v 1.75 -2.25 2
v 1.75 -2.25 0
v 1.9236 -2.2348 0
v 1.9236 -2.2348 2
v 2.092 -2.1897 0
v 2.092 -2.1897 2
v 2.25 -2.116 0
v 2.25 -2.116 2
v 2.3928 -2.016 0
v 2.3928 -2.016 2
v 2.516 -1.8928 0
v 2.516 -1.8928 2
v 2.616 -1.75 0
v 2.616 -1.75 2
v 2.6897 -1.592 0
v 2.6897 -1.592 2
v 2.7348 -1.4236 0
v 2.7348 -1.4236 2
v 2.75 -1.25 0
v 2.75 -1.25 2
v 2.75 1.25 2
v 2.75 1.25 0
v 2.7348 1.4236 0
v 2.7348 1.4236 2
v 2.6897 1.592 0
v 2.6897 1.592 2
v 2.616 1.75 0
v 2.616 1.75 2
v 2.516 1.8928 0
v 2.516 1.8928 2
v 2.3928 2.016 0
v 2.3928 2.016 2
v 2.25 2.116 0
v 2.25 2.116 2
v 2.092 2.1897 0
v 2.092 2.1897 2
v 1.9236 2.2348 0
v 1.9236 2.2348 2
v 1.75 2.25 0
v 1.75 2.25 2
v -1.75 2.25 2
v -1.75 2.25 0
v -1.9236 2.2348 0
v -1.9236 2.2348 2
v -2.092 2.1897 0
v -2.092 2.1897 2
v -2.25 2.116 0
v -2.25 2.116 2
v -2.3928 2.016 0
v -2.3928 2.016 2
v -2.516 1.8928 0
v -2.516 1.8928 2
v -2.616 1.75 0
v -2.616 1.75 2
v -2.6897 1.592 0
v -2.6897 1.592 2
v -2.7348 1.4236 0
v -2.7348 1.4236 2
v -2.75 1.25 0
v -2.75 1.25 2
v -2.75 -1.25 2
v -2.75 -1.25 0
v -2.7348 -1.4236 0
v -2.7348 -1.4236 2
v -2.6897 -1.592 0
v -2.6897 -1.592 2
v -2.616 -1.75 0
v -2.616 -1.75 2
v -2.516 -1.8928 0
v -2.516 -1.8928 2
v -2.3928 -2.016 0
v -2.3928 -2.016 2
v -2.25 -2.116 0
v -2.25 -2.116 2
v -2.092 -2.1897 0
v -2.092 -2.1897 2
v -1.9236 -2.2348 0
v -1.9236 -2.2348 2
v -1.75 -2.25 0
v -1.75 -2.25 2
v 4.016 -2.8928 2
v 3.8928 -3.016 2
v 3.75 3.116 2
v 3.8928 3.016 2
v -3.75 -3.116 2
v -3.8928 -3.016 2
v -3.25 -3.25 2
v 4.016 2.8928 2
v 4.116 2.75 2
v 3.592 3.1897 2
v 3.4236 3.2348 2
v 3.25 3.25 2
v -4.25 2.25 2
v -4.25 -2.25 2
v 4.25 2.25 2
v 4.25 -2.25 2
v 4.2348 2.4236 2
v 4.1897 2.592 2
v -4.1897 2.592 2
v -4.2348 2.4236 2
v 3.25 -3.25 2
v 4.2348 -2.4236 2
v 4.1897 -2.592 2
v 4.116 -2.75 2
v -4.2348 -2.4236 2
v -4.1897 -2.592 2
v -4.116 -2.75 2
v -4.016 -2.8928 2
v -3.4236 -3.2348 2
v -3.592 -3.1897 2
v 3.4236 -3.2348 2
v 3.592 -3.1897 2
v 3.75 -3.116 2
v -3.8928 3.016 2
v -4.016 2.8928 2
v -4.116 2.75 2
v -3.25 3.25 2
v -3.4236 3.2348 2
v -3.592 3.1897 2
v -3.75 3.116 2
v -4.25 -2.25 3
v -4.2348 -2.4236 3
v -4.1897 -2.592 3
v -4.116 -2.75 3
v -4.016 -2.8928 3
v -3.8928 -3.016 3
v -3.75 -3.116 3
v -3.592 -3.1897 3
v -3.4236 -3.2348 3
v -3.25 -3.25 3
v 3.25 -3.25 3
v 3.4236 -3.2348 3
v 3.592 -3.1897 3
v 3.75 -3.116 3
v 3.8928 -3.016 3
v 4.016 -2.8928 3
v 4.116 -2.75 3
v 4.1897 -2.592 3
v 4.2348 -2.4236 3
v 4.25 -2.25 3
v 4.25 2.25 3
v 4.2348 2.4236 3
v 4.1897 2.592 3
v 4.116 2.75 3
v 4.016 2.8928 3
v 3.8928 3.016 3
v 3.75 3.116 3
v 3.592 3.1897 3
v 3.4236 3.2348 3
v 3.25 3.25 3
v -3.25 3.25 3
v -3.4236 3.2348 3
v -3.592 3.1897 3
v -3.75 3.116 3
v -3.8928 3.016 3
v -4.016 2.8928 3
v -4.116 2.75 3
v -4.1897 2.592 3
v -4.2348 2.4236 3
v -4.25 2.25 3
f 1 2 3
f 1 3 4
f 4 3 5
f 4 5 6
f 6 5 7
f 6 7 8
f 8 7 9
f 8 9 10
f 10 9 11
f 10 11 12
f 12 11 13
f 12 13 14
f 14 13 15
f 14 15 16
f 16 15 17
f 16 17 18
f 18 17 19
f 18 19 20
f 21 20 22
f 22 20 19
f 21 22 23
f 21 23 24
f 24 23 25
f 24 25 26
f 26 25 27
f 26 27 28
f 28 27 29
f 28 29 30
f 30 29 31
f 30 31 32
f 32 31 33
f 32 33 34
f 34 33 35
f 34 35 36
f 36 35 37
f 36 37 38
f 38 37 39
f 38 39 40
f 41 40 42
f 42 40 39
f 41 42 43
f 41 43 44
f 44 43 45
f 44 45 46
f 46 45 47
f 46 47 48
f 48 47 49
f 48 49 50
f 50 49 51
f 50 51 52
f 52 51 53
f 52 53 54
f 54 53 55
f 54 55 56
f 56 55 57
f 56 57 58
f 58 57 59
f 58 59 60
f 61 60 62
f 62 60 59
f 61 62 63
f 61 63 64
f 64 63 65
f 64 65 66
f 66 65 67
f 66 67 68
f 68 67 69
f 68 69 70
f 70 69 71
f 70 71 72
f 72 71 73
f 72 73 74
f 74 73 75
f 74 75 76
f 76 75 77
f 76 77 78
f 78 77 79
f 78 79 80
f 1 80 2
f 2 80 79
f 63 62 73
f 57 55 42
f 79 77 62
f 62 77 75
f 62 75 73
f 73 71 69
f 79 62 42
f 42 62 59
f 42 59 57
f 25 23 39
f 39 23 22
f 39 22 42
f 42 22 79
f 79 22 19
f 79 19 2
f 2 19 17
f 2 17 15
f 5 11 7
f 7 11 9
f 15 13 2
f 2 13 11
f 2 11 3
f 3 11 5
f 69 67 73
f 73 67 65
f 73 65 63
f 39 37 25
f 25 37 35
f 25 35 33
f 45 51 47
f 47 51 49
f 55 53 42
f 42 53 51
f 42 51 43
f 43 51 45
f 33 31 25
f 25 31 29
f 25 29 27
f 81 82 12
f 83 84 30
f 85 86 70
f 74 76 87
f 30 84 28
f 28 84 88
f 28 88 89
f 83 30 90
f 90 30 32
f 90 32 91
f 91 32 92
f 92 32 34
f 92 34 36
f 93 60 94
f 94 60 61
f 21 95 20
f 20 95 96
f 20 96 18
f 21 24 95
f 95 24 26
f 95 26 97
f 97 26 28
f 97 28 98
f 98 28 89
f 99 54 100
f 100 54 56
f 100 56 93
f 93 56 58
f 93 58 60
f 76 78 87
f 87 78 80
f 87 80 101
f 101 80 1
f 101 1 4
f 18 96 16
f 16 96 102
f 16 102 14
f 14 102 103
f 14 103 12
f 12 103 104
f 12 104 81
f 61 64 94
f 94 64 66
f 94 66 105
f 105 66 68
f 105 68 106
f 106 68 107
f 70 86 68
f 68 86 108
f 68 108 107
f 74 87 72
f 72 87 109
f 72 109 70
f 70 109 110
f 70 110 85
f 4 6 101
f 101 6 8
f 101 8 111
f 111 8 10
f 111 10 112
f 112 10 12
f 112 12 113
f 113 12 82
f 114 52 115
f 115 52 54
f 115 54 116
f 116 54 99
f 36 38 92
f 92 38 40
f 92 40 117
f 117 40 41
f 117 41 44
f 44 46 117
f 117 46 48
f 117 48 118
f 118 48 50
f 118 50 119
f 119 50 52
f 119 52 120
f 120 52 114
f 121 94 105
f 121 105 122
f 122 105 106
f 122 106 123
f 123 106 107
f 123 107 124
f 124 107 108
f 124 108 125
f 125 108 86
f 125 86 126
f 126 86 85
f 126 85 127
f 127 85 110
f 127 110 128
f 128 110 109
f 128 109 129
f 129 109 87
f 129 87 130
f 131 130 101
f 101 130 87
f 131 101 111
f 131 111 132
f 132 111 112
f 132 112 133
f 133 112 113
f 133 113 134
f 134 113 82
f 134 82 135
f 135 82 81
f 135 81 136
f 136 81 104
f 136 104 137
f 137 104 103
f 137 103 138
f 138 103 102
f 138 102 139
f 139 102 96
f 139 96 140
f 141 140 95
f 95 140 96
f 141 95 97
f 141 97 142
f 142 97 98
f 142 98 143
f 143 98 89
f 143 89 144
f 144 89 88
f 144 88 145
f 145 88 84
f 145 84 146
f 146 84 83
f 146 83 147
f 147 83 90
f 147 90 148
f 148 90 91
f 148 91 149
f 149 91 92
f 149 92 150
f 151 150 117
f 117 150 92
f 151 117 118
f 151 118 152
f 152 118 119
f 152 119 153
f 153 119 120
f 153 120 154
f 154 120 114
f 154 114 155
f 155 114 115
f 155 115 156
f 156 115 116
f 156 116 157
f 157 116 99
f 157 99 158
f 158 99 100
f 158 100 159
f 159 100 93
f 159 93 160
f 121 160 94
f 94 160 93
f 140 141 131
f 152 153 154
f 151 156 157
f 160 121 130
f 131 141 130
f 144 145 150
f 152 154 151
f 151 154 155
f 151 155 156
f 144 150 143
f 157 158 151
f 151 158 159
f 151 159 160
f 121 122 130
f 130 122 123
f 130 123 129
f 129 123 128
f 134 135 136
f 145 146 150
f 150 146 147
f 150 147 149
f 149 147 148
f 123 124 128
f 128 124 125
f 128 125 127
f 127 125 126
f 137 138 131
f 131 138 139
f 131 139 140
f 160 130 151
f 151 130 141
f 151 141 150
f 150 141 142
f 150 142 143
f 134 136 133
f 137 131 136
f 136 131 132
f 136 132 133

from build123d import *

# Parameters (mm, degrees)
EXTRUDE_1_DEPTH = 2
EXTRUDE_2_DEPTH = 1


with BuildPart() as part:
    # Эскиз1 → Бобышка-Вытянуть1 (new body)
    with BuildSketch(Plane.XY):
        with BuildLine():
            Line((-1.75, -2.25), (1.75, -2.25))
            ThreePointArc((1.75, -2.25), (2.457106781, -1.957106781), (2.75, -1.25))
            Line((2.75, -1.25), (2.75, 1.25))
            ThreePointArc((2.75, 1.25), (2.457106781, 1.957106781), (1.75, 2.25))
            Line((1.75, 2.25), (-1.75, 2.25))
            ThreePointArc((-1.75, 2.25), (-2.457106781, 1.957106781), (-2.75, 1.25))
            Line((-2.75, 1.25), (-2.75, -1.25))
            ThreePointArc((-2.75, -1.25), (-2.457106781, -1.957106781), (-1.75, -2.25))
        make_face()
    extrude(amount=EXTRUDE_1_DEPTH)

    # Эскиз2 → Бобышка-Вытянуть2 (add)
    with BuildSketch(Plane.XY.offset(2)):
        with BuildLine():
            Line((-3.25, -3.25), (3.25, -3.25))
            ThreePointArc((3.25, -3.25), (3.957106781, -2.957106781), (4.25, -2.25))
            Line((4.25, -2.25), (4.25, 2.25))
            ThreePointArc((4.25, 2.25), (3.957106781, 2.957106781), (3.25, 3.25))
            Line((3.25, 3.25), (-3.25, 3.25))
            ThreePointArc((-3.25, 3.25), (-3.957106781, 2.957106781), (-4.25, 2.25))
            Line((-4.25, 2.25), (-4.25, -2.25))
            ThreePointArc((-4.25, -2.25), (-3.957106781, -2.957106781), (-3.25, -3.25))
        make_face()
    extrude(amount=EXTRUDE_2_DEPTH)


solid = part.part
